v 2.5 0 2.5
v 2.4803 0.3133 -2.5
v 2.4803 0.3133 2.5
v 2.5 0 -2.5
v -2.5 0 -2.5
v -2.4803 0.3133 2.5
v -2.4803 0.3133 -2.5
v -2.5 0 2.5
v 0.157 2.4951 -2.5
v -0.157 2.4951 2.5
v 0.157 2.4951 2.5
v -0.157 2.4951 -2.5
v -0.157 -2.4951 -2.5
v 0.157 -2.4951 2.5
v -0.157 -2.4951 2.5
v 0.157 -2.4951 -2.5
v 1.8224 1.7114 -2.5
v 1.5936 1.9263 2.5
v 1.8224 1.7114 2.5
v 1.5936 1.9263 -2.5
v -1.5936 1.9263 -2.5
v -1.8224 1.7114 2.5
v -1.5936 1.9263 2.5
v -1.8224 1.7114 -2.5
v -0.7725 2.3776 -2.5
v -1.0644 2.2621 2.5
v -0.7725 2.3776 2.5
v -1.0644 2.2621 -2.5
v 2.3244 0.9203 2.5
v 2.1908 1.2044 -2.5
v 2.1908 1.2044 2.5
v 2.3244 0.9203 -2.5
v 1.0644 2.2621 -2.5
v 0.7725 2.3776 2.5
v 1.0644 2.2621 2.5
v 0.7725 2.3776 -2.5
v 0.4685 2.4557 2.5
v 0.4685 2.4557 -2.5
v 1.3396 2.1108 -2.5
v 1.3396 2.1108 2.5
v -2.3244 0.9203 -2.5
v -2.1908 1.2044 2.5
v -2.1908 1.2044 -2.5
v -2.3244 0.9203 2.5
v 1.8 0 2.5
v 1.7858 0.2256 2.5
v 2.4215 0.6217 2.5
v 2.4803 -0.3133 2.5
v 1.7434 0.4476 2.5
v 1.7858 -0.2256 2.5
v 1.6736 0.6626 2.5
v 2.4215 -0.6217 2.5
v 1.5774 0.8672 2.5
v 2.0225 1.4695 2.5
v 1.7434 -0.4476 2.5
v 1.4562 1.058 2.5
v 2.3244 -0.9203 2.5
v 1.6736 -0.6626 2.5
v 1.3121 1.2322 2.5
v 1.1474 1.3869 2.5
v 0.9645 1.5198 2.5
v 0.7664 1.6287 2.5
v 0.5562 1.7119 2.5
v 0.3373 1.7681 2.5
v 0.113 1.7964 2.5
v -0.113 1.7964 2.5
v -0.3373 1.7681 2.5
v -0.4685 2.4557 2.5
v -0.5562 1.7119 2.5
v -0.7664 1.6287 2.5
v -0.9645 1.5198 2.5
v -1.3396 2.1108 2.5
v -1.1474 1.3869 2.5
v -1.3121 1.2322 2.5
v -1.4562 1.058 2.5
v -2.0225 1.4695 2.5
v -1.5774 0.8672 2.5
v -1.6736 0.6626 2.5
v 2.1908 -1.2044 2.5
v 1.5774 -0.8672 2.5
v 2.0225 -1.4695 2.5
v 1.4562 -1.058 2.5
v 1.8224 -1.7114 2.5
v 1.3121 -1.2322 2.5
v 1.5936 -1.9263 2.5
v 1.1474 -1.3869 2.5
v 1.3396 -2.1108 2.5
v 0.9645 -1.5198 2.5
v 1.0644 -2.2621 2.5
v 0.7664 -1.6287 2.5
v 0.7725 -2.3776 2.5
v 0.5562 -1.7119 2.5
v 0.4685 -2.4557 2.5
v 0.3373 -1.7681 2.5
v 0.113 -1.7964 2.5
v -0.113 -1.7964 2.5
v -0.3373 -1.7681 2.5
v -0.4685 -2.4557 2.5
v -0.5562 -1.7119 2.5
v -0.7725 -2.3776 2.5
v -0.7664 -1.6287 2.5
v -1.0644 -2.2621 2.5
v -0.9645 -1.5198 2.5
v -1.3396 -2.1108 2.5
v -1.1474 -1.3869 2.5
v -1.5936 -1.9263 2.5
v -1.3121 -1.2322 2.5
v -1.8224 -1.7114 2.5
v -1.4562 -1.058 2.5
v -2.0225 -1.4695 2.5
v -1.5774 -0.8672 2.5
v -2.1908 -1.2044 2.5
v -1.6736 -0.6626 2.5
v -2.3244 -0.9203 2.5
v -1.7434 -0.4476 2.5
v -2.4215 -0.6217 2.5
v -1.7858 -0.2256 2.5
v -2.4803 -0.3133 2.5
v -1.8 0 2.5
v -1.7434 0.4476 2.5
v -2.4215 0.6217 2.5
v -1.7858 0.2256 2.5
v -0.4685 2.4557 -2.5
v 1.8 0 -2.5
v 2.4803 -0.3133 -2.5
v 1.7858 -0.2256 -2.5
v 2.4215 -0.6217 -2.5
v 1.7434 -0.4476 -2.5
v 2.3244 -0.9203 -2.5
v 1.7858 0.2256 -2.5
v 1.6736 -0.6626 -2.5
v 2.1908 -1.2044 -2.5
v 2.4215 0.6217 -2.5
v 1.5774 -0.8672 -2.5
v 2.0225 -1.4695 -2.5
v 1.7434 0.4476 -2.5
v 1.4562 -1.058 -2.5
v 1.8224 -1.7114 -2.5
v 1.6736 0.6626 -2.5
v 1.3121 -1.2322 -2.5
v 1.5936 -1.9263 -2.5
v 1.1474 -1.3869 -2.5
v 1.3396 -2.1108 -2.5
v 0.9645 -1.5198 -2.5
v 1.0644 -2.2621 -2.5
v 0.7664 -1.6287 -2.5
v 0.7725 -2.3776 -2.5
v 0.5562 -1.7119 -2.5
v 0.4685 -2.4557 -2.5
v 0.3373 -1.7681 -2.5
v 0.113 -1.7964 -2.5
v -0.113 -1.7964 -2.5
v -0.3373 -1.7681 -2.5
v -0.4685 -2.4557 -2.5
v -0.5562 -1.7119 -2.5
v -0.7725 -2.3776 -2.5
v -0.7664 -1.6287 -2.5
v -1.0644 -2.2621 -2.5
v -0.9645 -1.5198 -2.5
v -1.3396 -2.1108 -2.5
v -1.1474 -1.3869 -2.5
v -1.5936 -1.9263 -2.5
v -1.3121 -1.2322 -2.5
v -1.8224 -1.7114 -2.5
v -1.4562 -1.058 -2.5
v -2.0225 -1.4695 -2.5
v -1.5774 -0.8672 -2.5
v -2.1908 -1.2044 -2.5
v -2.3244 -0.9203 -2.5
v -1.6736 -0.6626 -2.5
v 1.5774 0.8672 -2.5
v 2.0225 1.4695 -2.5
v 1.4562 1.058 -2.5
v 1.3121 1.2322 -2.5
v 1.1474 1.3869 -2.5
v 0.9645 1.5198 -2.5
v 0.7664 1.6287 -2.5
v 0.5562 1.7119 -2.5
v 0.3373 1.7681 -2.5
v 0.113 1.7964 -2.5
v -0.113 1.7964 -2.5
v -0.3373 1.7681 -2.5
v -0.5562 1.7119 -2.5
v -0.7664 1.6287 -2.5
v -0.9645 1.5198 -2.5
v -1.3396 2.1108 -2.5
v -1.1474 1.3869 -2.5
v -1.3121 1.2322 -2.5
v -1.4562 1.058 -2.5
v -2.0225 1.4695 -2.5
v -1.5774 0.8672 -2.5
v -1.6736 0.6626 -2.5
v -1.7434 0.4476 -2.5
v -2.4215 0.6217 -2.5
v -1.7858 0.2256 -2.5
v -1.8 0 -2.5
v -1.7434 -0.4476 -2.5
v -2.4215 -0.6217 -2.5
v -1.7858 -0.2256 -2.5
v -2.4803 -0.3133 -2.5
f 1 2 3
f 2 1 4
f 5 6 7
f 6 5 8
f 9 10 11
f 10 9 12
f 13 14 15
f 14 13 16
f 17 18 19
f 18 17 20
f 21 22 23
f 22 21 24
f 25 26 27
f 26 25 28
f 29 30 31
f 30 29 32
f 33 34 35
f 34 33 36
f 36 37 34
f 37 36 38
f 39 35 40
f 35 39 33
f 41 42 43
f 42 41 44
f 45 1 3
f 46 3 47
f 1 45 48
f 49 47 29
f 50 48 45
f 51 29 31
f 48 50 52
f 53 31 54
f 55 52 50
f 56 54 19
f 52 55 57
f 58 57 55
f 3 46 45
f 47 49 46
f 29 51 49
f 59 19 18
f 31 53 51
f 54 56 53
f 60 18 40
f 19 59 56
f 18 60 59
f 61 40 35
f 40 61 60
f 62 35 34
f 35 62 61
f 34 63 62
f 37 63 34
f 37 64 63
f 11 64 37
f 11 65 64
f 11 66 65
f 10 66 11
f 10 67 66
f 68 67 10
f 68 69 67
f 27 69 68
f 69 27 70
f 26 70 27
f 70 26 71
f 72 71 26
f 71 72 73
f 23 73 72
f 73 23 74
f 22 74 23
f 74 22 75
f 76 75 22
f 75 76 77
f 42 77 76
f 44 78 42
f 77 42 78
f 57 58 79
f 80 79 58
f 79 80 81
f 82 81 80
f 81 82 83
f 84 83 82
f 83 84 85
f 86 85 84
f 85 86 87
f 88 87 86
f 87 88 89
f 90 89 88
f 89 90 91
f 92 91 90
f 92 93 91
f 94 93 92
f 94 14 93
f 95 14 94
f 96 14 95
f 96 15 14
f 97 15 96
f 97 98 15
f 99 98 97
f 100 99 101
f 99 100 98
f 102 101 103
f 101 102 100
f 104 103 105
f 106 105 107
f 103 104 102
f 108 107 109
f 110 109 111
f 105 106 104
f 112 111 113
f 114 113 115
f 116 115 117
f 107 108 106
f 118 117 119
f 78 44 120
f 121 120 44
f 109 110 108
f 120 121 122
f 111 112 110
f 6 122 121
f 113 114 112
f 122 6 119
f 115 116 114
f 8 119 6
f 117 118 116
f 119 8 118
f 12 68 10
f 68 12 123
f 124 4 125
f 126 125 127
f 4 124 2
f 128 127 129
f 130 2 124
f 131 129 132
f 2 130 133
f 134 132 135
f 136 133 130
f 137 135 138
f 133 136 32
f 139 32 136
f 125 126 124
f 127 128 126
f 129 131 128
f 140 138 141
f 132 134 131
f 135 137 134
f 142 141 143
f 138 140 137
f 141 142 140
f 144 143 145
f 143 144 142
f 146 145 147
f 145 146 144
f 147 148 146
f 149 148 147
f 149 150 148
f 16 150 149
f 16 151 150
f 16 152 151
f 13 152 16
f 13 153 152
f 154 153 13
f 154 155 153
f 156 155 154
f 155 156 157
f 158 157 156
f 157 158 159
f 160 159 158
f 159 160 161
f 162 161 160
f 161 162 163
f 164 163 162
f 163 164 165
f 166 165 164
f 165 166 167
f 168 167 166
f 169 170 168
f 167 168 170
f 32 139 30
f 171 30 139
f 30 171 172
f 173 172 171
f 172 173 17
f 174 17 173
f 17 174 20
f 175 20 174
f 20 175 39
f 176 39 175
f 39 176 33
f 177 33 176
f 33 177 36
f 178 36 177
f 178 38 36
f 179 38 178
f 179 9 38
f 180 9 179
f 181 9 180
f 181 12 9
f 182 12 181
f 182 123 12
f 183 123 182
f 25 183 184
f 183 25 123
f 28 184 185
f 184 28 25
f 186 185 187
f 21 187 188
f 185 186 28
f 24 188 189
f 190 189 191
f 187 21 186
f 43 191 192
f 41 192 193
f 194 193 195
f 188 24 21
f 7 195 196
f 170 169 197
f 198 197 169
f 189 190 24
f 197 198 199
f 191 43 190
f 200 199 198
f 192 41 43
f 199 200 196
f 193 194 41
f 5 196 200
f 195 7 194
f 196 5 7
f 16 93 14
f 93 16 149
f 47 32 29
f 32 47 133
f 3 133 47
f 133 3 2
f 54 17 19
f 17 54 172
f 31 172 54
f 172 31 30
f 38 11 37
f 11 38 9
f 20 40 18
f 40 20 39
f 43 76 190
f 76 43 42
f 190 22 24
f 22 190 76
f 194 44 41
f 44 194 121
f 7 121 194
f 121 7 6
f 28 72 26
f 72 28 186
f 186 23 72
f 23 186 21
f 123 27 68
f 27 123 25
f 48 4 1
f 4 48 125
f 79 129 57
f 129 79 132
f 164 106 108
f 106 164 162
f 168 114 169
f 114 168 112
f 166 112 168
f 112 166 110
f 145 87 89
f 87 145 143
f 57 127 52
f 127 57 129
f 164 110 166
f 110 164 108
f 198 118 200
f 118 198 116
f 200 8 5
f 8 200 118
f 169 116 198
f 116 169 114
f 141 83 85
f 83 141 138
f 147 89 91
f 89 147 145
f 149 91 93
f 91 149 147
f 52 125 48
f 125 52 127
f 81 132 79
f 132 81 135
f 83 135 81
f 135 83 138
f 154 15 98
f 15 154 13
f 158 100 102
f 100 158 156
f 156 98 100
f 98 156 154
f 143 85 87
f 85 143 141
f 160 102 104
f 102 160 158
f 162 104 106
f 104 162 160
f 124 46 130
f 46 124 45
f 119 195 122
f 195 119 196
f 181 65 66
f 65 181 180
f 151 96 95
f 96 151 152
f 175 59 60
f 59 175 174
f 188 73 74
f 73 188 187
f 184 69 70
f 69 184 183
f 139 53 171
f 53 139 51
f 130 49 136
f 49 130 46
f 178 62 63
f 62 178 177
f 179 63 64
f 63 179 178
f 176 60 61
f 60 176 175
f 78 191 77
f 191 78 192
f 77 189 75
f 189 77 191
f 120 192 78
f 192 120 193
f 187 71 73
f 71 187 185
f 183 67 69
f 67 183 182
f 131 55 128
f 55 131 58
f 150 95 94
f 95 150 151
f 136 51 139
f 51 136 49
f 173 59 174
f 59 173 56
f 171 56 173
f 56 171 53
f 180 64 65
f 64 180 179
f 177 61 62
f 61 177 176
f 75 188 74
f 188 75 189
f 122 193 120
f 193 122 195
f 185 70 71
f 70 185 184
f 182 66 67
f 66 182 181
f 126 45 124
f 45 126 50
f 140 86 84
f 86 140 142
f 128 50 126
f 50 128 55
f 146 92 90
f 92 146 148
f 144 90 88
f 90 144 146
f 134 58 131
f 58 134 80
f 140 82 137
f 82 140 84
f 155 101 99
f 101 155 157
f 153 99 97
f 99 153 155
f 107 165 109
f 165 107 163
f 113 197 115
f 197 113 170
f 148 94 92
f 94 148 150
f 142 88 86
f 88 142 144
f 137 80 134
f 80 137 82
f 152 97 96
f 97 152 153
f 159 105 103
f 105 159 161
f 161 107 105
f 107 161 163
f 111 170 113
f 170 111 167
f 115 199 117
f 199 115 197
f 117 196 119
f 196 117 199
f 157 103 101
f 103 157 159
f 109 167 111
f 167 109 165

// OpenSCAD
$fn = 50;


difference() {
	union() {
		translate(v = [0, 0, -2.5000000000]) {
			cylinder(h = 5, r = 2.5000000000);
		}
	}
	union() {
		translate(v = [0, 0, -100.0000000000]) {
			cylinder(h = 200, r = 1.8000000000);
		}
	}
}
